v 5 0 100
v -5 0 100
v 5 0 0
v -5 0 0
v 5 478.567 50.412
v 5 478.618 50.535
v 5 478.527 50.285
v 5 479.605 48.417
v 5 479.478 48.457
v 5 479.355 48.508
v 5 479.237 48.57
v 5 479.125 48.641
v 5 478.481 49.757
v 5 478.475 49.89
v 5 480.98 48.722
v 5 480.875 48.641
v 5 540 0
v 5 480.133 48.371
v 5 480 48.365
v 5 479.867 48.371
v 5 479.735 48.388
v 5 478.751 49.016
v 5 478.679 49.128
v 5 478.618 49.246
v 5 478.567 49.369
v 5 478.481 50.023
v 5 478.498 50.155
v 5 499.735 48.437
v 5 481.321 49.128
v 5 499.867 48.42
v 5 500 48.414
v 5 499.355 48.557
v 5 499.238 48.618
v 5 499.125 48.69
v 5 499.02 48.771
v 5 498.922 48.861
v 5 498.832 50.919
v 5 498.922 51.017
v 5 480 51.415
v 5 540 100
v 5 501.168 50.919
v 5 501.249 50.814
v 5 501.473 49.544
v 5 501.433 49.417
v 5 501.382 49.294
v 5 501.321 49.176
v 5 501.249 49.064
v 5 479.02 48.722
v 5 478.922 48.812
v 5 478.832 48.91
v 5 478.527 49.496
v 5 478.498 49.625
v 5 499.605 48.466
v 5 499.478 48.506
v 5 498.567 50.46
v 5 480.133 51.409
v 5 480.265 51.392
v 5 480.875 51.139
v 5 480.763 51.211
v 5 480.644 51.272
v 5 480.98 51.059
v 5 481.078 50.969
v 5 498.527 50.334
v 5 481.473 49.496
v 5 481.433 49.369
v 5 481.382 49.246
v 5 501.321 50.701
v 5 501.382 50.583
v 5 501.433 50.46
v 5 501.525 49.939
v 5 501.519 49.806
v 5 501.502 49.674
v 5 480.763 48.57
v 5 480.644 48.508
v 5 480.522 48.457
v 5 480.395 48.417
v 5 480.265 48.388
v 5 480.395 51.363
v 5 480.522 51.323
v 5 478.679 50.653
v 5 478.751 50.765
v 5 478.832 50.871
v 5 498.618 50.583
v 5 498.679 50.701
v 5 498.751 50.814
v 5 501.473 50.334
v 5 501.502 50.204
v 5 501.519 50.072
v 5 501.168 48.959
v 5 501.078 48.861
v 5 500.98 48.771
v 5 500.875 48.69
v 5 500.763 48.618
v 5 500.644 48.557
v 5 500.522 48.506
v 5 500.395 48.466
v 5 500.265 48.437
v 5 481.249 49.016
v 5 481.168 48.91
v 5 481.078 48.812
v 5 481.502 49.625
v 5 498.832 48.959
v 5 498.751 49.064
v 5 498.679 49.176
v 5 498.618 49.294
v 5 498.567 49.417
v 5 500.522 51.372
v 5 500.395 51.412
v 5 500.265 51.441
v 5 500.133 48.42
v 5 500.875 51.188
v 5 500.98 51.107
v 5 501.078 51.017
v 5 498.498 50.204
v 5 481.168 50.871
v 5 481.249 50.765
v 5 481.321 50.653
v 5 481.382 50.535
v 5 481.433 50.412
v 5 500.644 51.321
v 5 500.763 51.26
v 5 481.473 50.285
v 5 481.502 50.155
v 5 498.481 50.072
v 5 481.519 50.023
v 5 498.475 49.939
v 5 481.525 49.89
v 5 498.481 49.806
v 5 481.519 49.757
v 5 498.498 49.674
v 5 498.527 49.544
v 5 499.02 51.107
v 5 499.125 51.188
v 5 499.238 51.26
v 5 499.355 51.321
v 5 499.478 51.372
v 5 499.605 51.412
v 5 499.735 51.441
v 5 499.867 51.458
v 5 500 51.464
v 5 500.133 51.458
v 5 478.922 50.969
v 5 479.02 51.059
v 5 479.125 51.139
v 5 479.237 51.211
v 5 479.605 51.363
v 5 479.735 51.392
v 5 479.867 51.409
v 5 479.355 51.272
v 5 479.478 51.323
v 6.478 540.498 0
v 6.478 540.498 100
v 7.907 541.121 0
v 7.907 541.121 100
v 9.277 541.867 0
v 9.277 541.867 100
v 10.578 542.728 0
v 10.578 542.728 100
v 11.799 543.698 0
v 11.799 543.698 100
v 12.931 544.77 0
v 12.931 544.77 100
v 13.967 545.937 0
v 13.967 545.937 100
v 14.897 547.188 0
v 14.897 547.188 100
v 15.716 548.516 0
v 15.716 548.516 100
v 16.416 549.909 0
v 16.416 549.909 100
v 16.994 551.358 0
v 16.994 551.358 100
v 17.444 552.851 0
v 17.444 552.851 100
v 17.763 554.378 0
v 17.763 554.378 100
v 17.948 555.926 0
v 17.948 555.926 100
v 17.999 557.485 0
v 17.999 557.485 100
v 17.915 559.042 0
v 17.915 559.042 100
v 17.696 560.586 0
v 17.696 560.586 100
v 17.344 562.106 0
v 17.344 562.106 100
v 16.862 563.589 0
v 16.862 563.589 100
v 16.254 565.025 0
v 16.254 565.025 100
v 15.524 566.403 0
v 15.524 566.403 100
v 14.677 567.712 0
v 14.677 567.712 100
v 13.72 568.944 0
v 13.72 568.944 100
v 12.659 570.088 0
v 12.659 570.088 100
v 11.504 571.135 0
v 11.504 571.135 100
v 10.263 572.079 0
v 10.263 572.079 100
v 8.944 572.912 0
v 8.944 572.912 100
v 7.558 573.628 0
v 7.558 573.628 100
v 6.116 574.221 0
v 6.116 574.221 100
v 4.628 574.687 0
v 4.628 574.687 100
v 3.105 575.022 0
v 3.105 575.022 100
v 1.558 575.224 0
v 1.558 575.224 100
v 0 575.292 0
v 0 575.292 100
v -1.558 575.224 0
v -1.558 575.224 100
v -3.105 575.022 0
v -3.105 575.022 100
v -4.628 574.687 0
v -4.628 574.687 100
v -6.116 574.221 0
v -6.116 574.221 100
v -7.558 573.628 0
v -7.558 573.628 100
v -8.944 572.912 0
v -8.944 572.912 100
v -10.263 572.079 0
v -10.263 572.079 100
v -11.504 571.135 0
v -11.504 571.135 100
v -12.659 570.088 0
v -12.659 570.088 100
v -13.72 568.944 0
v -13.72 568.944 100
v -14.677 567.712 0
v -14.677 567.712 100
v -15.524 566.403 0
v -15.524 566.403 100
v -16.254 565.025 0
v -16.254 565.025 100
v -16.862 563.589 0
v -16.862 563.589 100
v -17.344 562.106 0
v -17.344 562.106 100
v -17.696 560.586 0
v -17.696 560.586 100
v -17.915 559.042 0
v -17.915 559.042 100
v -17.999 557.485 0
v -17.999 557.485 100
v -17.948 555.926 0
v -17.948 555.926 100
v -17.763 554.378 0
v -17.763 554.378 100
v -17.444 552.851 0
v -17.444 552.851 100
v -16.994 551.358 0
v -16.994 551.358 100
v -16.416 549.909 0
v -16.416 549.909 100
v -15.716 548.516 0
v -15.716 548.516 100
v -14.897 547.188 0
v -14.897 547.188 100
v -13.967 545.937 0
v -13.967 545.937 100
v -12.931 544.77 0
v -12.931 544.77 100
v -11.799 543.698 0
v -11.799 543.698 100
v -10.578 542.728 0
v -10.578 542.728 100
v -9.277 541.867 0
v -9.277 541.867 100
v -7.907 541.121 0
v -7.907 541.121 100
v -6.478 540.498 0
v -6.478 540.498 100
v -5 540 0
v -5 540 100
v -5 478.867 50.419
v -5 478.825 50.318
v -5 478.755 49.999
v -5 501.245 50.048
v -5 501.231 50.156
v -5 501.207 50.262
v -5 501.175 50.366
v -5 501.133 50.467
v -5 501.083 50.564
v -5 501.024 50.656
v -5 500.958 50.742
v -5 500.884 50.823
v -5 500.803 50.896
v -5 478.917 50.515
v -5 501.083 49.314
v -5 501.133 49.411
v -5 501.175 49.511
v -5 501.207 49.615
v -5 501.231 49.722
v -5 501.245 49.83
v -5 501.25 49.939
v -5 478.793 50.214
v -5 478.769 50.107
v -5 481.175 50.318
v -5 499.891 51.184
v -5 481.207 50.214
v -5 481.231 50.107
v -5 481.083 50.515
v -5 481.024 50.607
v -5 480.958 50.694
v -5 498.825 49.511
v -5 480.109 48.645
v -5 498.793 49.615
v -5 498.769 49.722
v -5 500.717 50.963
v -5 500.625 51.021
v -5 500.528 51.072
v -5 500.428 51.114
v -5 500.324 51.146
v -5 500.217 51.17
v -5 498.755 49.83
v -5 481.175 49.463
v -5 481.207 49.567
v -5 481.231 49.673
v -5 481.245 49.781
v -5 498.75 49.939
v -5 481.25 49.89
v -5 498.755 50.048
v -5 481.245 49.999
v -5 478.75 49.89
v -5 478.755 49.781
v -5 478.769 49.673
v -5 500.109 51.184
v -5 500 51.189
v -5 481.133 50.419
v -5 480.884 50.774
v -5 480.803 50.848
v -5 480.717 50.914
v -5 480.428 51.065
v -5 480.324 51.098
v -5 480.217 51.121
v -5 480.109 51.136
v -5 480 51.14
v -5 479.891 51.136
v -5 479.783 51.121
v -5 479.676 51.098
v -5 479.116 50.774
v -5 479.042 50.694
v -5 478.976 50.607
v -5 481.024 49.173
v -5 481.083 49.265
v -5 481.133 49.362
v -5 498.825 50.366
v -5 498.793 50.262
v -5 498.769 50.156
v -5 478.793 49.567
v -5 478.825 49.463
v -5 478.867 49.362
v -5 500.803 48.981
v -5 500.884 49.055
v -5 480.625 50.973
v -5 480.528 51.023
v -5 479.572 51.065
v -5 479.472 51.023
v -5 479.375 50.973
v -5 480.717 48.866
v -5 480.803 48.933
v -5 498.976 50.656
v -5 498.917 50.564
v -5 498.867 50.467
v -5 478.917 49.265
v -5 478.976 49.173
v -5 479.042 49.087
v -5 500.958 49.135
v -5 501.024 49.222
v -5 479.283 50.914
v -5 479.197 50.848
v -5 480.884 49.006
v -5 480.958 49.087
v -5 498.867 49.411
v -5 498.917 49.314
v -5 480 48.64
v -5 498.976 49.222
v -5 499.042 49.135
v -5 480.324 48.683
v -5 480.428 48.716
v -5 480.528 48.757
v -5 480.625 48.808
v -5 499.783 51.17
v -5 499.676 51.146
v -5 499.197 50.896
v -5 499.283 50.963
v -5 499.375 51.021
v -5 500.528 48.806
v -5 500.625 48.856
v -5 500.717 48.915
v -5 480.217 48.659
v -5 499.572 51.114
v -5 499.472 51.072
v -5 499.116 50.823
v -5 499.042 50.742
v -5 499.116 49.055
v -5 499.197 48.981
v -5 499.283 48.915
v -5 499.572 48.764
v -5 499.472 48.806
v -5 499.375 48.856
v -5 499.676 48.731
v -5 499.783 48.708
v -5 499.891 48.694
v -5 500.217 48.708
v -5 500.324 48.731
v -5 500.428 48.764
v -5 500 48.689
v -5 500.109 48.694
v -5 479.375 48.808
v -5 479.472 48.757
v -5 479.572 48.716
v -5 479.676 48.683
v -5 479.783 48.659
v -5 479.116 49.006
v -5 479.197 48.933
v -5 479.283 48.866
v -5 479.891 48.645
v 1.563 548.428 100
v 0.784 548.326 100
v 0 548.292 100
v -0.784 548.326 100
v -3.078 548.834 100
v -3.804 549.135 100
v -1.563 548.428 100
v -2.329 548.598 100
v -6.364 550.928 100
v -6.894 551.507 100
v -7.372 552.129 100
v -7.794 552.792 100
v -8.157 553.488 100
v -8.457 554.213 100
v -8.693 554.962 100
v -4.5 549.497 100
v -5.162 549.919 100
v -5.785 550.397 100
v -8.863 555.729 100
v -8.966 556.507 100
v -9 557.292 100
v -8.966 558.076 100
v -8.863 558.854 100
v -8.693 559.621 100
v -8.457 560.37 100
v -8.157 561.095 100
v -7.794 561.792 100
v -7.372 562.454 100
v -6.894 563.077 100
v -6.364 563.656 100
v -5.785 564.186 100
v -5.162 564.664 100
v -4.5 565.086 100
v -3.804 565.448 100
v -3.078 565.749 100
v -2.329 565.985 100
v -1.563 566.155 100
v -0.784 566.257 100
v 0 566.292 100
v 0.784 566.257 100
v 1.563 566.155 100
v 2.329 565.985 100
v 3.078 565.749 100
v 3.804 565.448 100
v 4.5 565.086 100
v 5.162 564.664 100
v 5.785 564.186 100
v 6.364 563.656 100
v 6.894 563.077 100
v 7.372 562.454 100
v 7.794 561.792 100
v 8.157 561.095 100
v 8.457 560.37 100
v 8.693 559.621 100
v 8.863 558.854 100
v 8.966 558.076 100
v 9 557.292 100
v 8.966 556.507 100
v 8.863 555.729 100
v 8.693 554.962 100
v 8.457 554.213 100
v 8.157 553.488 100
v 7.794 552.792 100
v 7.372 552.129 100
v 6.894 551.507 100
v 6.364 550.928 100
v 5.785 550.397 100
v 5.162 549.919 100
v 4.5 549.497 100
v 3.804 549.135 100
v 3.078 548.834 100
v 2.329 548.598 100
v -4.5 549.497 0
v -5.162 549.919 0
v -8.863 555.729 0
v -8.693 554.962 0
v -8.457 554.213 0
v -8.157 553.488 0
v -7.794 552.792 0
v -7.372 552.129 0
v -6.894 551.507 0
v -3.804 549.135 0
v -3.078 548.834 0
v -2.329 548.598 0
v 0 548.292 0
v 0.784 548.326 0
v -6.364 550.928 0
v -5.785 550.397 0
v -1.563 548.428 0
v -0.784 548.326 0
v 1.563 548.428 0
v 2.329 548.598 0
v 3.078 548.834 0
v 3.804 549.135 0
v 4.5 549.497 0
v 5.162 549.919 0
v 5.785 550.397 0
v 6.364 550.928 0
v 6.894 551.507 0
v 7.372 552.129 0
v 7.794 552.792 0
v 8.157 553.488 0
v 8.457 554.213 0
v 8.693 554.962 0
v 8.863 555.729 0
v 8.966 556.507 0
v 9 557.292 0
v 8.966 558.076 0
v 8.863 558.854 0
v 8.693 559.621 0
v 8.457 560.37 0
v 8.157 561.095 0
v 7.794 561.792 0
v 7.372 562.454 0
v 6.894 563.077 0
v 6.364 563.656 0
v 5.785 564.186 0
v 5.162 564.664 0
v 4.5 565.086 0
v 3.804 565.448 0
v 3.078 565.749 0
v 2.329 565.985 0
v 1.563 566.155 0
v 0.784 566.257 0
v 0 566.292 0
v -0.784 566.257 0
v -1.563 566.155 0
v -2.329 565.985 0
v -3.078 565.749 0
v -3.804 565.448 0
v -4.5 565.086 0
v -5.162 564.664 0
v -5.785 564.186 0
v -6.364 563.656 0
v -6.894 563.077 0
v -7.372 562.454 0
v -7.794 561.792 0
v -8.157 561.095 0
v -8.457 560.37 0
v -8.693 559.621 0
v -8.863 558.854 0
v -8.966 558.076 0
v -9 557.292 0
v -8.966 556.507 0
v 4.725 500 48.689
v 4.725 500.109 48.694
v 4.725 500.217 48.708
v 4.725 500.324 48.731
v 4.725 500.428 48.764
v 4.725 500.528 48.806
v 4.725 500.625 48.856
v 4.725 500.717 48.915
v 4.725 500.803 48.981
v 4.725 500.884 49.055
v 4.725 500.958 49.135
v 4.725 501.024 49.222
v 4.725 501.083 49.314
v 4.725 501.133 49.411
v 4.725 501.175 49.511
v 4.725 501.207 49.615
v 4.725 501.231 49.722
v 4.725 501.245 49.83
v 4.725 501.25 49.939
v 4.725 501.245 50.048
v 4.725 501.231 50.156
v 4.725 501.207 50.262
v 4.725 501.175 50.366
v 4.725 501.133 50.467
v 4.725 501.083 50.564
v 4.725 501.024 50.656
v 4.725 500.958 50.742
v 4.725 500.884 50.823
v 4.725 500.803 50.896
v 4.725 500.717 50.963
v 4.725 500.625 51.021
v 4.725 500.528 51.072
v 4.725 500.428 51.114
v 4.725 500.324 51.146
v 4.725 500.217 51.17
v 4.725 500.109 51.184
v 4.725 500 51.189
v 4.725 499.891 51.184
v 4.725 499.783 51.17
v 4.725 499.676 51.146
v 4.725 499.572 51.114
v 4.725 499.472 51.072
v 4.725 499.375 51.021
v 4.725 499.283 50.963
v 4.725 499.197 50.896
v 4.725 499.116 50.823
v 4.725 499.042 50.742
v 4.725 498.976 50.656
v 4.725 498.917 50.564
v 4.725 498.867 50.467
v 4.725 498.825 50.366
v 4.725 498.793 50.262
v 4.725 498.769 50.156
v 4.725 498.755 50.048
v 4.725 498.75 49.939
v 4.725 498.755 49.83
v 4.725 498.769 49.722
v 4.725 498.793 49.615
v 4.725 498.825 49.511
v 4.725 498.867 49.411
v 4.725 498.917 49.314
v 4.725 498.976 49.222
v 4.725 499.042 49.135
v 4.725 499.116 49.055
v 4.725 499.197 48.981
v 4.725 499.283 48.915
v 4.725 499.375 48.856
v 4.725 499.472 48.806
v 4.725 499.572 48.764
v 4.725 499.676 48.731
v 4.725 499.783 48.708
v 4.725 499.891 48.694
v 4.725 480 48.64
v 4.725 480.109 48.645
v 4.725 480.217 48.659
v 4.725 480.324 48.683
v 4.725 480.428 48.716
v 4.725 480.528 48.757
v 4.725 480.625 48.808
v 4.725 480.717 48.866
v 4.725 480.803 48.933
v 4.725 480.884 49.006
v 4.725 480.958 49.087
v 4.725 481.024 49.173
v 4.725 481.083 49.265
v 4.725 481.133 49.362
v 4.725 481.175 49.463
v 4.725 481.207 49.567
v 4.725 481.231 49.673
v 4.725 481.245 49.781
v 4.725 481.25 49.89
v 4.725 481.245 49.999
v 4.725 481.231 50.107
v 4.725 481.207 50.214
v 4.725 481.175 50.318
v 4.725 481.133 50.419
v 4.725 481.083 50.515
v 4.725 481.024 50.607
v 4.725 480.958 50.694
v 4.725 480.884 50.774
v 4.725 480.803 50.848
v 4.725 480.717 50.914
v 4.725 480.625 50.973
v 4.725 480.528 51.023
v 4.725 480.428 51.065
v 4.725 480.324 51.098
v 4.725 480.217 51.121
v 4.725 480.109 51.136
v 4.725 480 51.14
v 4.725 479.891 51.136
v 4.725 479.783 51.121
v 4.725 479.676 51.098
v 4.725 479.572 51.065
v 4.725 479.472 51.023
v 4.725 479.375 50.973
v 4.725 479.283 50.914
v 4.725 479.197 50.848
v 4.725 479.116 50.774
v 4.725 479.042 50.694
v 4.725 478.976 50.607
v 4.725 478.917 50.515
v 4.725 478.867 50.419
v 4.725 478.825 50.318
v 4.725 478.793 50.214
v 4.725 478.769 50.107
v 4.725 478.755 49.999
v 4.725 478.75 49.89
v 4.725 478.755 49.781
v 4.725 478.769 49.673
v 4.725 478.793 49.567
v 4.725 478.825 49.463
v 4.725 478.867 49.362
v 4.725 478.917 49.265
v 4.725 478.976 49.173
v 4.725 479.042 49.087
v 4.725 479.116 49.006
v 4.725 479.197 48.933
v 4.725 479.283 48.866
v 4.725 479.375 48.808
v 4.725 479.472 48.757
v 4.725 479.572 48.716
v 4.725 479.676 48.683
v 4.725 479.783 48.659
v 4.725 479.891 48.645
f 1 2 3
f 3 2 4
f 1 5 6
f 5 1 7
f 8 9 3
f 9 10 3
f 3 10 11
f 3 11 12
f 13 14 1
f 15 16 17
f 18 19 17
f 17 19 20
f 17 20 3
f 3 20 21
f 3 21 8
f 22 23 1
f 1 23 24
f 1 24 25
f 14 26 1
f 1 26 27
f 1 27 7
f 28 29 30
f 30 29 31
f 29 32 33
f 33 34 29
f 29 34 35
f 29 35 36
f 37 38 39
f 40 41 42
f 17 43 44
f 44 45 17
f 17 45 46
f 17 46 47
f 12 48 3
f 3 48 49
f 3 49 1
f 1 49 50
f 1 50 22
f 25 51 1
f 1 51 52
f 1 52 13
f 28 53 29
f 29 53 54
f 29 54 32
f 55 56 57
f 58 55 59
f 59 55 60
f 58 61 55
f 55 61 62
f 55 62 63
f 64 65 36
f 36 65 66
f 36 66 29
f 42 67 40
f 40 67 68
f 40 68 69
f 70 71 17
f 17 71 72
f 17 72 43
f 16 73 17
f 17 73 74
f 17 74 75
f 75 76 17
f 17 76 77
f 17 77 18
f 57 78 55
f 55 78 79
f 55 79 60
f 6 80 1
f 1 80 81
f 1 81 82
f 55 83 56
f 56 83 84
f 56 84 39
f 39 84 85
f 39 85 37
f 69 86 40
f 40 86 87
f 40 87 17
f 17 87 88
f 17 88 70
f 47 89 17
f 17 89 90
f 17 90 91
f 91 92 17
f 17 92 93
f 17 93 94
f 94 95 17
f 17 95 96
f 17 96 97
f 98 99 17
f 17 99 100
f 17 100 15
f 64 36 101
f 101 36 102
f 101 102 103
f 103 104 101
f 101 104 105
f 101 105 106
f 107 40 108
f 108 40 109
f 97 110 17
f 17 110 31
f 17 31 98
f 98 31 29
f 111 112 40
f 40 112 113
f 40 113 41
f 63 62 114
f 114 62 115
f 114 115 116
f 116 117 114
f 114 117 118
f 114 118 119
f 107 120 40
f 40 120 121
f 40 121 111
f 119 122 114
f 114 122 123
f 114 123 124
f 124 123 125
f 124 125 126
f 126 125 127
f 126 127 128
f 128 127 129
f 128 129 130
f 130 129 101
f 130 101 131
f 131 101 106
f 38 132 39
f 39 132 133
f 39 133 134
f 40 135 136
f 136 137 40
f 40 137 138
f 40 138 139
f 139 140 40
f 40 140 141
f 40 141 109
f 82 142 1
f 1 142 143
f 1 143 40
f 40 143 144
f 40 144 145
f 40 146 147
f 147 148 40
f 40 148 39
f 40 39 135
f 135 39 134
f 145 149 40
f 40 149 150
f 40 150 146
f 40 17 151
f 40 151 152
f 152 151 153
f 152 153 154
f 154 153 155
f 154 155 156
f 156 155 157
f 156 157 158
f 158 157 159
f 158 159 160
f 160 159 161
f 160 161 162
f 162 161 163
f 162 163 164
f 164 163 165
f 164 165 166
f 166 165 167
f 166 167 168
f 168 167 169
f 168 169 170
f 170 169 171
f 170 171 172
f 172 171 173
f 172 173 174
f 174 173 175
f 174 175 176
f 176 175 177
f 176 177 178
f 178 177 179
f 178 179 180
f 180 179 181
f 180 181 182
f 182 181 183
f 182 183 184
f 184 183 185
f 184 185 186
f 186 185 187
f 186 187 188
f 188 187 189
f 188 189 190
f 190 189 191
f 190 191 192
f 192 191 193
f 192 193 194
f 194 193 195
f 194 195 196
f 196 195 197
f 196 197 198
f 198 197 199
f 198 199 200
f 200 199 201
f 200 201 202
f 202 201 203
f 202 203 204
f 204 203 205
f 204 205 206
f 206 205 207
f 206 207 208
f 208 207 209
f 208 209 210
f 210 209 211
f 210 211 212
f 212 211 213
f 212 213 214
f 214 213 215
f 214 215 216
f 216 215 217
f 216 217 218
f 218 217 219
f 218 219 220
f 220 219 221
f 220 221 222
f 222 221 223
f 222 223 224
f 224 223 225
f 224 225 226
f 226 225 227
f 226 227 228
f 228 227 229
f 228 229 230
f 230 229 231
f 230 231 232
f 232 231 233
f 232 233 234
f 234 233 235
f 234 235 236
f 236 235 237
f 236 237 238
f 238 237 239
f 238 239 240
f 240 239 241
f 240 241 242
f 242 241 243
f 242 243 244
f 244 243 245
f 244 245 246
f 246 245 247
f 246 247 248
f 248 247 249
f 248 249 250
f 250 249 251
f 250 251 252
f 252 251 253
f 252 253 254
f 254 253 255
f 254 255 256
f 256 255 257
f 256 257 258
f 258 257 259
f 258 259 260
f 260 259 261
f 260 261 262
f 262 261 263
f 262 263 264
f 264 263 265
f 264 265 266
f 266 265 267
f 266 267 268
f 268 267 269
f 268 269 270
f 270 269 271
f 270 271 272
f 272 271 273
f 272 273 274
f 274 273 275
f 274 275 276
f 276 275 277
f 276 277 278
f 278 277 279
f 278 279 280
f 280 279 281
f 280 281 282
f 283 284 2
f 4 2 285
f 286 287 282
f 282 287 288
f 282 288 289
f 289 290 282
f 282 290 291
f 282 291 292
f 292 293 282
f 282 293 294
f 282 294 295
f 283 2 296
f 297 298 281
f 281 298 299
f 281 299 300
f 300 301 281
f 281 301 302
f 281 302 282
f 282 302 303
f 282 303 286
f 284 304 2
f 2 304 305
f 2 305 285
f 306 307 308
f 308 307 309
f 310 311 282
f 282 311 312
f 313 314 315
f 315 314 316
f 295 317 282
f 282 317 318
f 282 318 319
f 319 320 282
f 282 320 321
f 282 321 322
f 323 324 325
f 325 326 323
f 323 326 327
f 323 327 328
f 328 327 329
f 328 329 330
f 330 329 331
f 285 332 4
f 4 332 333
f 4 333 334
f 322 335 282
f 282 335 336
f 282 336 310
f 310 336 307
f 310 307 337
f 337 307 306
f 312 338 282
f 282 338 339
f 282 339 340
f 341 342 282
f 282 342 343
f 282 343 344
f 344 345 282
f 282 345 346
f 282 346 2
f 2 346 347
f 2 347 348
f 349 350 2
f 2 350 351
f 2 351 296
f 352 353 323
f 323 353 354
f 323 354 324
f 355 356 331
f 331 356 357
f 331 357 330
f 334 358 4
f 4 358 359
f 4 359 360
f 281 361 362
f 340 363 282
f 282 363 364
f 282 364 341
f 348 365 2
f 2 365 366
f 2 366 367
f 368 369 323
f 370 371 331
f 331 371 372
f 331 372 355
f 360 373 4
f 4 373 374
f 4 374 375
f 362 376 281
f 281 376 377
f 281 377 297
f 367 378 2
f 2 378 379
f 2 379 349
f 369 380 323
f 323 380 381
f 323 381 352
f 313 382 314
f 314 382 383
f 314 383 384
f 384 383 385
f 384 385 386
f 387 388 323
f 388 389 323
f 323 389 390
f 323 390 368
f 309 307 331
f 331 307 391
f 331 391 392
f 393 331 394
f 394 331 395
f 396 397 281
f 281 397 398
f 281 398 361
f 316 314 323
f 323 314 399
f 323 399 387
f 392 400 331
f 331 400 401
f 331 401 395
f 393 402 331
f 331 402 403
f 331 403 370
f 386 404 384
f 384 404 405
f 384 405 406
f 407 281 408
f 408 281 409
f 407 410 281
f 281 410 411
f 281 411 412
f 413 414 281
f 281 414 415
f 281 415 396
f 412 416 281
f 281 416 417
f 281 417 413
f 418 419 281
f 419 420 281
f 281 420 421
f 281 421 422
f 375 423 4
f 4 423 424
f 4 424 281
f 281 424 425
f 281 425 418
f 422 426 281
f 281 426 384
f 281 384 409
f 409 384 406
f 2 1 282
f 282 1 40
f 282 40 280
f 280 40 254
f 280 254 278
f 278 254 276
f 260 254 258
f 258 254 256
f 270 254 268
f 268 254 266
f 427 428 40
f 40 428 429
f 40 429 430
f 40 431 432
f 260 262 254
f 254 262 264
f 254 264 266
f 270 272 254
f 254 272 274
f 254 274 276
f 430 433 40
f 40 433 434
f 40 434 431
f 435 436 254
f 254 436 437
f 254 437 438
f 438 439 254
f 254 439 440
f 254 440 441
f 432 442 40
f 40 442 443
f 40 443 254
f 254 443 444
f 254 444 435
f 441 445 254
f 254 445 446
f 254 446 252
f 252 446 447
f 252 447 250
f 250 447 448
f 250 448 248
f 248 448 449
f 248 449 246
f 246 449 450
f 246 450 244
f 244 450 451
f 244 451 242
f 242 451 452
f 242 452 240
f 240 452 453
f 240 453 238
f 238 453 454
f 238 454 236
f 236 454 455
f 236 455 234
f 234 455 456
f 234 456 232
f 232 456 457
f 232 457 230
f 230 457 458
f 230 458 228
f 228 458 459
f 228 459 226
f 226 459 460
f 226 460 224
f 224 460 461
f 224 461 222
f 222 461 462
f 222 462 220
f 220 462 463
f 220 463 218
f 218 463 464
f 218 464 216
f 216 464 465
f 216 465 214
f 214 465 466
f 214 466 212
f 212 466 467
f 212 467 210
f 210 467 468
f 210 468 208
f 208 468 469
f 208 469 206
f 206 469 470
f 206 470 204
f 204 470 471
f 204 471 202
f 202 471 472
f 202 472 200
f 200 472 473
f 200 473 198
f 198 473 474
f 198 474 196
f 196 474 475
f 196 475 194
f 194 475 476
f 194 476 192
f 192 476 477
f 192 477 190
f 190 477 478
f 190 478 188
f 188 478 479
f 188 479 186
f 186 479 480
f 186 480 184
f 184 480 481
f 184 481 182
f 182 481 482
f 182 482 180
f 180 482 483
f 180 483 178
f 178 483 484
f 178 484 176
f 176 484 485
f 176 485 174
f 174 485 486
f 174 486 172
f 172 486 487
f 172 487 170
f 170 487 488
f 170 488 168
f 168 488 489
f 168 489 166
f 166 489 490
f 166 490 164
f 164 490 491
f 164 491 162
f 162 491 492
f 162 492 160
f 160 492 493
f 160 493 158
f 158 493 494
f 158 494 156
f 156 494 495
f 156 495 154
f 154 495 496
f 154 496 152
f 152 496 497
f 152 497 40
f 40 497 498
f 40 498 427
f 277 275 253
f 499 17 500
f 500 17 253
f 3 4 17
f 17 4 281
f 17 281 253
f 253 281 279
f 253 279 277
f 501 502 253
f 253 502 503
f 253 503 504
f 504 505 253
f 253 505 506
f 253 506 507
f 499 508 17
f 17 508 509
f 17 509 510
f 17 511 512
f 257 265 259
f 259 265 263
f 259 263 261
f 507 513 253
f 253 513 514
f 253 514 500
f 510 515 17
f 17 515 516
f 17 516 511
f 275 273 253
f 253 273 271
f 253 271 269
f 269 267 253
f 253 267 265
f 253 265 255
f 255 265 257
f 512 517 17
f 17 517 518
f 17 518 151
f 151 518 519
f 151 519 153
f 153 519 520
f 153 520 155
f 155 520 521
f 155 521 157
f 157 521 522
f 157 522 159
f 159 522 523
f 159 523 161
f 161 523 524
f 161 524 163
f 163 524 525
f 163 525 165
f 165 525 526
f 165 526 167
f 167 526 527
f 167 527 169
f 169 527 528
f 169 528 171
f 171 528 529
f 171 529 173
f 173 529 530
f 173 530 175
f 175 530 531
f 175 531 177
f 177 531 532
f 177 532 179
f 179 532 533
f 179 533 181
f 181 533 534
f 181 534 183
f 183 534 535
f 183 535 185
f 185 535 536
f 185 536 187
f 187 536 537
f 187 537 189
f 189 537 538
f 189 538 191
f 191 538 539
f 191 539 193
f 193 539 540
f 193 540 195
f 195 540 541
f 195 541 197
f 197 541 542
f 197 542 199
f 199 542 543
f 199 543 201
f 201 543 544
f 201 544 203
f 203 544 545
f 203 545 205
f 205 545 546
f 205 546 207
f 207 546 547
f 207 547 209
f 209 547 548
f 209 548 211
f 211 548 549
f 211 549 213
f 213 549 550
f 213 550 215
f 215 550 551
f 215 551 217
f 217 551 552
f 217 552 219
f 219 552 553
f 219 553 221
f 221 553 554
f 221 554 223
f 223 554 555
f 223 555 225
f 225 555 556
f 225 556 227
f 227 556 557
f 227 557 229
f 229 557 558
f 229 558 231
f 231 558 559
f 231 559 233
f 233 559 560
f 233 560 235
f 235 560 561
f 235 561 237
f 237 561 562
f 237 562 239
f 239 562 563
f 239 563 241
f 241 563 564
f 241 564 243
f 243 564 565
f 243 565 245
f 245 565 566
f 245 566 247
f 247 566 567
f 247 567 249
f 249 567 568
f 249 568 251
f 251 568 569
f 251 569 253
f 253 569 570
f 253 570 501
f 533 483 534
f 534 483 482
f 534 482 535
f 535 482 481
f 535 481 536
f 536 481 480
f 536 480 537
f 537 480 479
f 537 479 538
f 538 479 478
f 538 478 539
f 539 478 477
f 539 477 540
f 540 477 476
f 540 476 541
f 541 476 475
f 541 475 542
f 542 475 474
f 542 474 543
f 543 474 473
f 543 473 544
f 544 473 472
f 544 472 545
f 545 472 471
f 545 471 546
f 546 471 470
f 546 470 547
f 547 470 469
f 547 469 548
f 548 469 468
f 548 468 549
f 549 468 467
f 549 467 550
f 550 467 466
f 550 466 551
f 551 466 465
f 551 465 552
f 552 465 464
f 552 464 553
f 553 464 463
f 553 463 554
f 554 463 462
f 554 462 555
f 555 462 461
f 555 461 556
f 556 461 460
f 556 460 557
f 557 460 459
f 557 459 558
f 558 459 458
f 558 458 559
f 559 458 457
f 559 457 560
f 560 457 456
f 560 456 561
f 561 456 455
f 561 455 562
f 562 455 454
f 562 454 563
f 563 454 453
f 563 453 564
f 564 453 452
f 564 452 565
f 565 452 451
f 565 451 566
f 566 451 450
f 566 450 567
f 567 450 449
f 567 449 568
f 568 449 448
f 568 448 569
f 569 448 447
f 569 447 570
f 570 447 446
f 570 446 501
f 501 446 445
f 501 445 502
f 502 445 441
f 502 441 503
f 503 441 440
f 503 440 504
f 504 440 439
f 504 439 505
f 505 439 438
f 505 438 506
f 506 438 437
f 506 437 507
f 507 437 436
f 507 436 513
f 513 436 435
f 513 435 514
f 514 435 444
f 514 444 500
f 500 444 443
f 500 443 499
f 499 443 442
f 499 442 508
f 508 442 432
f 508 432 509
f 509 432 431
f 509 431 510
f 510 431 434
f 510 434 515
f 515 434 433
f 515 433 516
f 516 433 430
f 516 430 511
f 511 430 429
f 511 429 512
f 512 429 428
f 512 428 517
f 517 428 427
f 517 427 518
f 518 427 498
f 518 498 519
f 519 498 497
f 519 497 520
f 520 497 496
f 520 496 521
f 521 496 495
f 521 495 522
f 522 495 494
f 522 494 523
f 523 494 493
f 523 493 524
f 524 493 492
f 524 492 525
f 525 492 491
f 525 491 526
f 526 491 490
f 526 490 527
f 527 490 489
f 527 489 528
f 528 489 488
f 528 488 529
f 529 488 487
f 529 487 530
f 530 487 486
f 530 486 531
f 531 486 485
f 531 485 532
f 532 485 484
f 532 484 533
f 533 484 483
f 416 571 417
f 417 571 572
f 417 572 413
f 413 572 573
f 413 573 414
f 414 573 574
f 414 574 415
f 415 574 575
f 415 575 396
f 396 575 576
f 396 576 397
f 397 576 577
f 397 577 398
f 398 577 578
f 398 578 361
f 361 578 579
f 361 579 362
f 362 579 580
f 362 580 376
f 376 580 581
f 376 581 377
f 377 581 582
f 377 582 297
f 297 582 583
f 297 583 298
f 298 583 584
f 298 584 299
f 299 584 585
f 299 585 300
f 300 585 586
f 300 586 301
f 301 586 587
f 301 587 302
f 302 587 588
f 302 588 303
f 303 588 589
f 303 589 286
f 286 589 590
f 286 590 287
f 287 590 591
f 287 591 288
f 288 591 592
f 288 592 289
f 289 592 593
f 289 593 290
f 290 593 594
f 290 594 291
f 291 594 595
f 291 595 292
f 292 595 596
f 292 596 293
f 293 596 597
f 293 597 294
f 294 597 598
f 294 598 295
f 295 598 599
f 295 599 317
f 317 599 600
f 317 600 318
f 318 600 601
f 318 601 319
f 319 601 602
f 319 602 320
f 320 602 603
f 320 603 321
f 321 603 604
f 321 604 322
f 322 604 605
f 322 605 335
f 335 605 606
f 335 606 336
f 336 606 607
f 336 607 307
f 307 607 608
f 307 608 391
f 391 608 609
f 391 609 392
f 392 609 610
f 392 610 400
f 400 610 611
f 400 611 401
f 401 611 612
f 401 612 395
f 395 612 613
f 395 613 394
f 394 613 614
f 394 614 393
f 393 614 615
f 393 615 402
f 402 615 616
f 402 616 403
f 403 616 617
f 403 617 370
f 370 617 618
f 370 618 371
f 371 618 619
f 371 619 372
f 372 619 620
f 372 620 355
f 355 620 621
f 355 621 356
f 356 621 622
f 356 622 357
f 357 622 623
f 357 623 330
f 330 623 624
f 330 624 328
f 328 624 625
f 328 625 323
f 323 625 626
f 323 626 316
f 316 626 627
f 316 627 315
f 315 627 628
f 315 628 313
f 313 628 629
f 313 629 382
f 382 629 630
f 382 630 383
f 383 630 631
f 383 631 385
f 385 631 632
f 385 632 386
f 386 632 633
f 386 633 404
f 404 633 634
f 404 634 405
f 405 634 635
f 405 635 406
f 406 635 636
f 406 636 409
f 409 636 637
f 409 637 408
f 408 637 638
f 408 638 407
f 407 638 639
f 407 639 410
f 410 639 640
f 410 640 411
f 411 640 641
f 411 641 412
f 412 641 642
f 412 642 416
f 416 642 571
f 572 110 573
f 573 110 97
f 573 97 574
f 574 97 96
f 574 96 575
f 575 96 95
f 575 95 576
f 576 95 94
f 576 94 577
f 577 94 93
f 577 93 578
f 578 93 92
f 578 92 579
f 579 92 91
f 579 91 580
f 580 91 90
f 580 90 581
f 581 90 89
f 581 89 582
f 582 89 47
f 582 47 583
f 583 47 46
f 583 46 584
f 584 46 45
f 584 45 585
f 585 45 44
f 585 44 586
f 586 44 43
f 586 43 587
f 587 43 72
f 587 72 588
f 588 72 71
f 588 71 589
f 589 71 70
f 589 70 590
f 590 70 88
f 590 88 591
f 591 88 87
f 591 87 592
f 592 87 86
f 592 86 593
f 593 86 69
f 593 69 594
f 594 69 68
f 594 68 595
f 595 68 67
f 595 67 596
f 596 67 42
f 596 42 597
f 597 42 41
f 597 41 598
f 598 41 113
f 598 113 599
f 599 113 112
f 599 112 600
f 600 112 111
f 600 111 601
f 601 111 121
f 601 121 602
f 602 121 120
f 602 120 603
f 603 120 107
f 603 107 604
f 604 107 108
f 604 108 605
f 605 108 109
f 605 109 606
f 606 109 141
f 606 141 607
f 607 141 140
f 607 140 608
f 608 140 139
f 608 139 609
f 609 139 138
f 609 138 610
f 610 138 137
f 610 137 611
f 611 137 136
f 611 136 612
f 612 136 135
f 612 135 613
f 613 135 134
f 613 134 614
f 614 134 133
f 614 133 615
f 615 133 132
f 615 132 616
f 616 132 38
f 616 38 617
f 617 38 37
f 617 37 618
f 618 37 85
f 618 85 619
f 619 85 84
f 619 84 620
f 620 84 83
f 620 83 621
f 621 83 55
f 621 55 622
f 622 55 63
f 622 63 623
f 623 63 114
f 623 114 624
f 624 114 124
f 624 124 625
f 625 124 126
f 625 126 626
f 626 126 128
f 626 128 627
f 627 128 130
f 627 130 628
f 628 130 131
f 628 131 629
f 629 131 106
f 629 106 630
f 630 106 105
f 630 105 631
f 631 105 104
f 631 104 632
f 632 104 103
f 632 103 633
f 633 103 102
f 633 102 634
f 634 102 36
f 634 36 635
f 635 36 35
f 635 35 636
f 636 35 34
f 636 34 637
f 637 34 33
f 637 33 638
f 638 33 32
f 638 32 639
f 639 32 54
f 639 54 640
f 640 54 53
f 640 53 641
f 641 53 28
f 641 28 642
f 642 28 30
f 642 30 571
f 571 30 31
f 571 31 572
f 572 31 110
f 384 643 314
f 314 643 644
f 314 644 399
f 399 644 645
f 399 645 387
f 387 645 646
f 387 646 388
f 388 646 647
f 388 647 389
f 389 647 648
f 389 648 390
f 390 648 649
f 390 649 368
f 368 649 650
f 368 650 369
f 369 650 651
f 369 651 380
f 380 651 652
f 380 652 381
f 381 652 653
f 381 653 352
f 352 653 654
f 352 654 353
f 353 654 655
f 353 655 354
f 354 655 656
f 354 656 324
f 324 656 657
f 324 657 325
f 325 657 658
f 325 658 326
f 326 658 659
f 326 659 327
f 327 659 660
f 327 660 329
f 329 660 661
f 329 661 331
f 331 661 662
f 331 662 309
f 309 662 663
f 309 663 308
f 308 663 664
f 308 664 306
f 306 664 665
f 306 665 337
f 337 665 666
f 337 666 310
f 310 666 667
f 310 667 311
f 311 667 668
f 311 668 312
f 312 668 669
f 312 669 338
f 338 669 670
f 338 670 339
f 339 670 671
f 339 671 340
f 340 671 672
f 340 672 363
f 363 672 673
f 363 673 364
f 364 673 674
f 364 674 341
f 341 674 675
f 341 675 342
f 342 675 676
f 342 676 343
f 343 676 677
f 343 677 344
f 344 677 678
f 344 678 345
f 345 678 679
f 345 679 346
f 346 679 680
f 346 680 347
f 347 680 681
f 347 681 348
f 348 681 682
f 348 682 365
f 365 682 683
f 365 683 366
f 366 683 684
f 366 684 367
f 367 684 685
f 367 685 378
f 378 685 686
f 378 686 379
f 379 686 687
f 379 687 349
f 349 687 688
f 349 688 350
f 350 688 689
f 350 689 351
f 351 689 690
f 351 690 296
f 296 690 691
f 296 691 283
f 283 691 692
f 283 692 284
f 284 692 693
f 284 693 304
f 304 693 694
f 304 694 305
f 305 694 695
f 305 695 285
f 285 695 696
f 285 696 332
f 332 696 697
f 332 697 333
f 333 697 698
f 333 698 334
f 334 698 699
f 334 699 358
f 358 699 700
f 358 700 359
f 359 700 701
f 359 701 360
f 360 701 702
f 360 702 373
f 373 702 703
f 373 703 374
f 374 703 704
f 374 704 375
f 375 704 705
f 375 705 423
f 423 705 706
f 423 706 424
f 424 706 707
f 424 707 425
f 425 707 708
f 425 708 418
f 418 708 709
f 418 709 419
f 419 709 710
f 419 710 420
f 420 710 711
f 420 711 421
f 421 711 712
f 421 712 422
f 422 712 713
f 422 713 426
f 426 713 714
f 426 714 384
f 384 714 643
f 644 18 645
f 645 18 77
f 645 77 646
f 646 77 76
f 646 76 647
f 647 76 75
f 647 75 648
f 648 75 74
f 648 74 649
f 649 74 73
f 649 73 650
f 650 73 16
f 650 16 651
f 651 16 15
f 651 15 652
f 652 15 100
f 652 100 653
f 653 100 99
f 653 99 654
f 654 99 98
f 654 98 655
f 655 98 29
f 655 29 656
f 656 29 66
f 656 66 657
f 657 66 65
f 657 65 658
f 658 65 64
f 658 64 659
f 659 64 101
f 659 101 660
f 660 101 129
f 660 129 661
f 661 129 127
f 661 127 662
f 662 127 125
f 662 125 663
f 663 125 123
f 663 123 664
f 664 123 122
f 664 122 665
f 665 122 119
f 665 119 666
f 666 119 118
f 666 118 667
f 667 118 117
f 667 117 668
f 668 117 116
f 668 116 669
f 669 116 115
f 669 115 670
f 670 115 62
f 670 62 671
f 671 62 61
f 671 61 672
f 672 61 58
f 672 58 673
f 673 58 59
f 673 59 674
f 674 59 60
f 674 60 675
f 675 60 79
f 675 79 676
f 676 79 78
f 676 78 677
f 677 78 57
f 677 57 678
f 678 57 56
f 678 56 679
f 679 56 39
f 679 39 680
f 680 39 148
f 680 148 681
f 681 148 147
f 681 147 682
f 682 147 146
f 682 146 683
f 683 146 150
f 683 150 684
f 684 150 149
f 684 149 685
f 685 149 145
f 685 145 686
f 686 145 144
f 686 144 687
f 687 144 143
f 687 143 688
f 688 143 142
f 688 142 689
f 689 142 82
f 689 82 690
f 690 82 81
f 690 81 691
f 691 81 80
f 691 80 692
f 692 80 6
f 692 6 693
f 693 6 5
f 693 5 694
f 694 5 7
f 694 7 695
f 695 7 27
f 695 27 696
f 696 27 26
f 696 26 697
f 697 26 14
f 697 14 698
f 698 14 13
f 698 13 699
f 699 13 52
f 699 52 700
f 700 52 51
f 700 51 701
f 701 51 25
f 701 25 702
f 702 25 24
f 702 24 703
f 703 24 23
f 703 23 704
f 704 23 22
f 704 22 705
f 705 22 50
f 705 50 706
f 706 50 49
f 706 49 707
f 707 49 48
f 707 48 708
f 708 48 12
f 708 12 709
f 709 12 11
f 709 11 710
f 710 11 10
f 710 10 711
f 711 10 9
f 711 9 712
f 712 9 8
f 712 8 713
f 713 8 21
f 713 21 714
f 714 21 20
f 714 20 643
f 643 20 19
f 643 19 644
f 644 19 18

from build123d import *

# Parameters (mm, degrees)
EXTRUDE_1_DEPTH              = 100
SKETCH_2_R                   = 9
CUT_EXTRUDE_1_DEPTH          = 100
HOLE_WIZARD_M3_3_D           = 2.5
HOLE_WIZARD_M3_3_CSINK_D     = 3.05
HOLE_WIZARD_M3_3_CSINK_ANGLE = 90
HOLE_WIZARD_M3_4_D           = 2.5
HOLE_WIZARD_M3_4_CSINK_D     = 3.05
HOLE_WIZARD_M3_4_CSINK_ANGLE = 90


with BuildPart() as part:
    # 草图1 → 凸台-拉伸1 (new body)
    with BuildSketch(Plane.XY):
        with BuildLine():
            Line((0, 0), (5, 0))
            Line((5, 0), (5, 540))
            ThreePointArc((5, 540), (0, 575.291616466), (-5, 540))
            Line((-5, 540), (-5, 0))
            Line((-5, 0), (0, 0))
        make_face()
    extrude(amount=EXTRUDE_1_DEPTH)

    # 草图2 → 切除-拉伸1 (cut)
    with BuildSketch(Plane.XY.offset(100)):
        with Locations((0, 557.291616466)):
            Circle(SKETCH_2_R)
    extrude(amount=-CUT_EXTRUDE_1_DEPTH, mode=Mode.SUBTRACT)

    # M3 螺纹孔3 (through all)
    with Locations(Plane(origin=(5, 500, 49.938905555), x_dir=(0, 0, 1), z_dir=(1, 0, 0))):
        with Locations((0, 0)):
            CounterSinkHole(HOLE_WIZARD_M3_3_D / 2, HOLE_WIZARD_M3_3_CSINK_D / 2, counter_sink_angle=HOLE_WIZARD_M3_3_CSINK_ANGLE)

    # M3 螺纹孔4 (through all)
    with Locations(Plane(origin=(5, 480, 49.890282126), x_dir=(0, 0, 1), z_dir=(1, 0, 0))):
        with Locations((0, 0)):
            CounterSinkHole(HOLE_WIZARD_M3_4_D / 2, HOLE_WIZARD_M3_4_CSINK_D / 2, counter_sink_angle=HOLE_WIZARD_M3_4_CSINK_ANGLE)


solid = part.part
